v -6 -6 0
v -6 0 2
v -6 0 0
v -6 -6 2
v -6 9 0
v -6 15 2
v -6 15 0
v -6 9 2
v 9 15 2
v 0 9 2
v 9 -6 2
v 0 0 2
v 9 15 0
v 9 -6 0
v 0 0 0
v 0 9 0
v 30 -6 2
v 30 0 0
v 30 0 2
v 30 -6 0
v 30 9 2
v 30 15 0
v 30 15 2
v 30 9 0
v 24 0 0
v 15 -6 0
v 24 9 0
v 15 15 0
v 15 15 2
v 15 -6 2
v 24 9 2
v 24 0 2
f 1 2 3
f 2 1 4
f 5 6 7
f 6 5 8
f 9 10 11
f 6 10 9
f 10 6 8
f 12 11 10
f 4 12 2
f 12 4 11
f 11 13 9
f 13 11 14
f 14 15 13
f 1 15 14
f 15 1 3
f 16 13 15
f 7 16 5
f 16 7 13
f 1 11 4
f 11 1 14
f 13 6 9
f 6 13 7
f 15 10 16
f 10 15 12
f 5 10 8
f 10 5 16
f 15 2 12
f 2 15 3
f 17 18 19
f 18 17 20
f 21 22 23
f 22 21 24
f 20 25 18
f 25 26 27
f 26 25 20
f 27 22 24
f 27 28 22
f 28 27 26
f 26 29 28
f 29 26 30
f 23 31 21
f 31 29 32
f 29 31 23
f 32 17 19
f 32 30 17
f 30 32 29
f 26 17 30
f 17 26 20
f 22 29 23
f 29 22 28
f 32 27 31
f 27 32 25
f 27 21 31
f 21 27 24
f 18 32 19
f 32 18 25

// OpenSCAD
// Generated by SolidPython 1.1.3 on 2025-06-19 23:26:26
$fn = 64;


union() {
	translate(v = [0, -6, 0]) {
		difference() {
			translate(v = [-6, 0, 0]) {
				cube(size = [15.0000000000, 21, 2]);
			}
			translate(v = [0, 0, -0.1000000000]) {
				translate(v = [-6.1000000000, 6, 0]) {
					cube(size = [6.1000000000, 9, 2.2000000000]);
				}
			}
		}
	}
	translate(v = [0, 0, 2]) {
		translate(v = [24, 0, 0]) {
			rotate(a = [0, 180, 0]) {
				translate(v = [0, -6, 0]) {
					difference() {
						translate(v = [-6, 0, 0]) {
							cube(size = [15.0000000000, 21, 2]);
						}
						translate(v = [0, 0, -0.1000000000]) {
							translate(v = [-6.1000000000, 6, 0]) {
								cube(size = [6.1000000000, 9, 2.2000000000]);
							}
						}
					}
				}
			}
		}
	}
}
/***********************************************
*********      SolidPython code:      **********
************************************************
 
import numpy as np
from solid import *
from solid.utils import *
import os

folder = os.path.basename(os.path.dirname(__file__))

z = 0.1
z2 = 0.2
m = 2

t = translate
tx = lambda e, x: t([x, 0, 0])(e)
ty = lambda e, x: t([0, x, 0])(e)
tz = lambda e, x: t([0, 0, x])(e)
txy = lambda e, x, y: t([x, y, 0])(e)

r = rotate
rx = lambda e, x: r([x, 0, 0])(e)
ry = lambda e, x: r([0, x, 0])(e)
rz = lambda e, x: r([0, 0, x])(e)

sc = lambda e, x: scale([x, x, x])(e)
sx = lambda e, x: scale([x, 1, 1])(e)
sy = lambda e, x: scale([1, x, 1])(e)
sxy = lambda e, x: scale([x, x, 1])(e)
sz = lambda e, x: scale([1, 1, x])(e)

cos = np.cos
sin = np.sin
pi = np.pi
save = lambda m, n: scad_render_to_file(m, n, file_header="$fn = 64;")


# Parameters
w_fan = 140 + m  # Width of fan
h_fan = 140 + m  # Height of fan
d_fan = 24 + m  # Depth of fan
r_fan = 134 / 2  # Radius
ox_fan_hole = 7 + m  # Offset x of fan screw hole
oy_fan_hole = 7 + m  # Offset y of fan screw hole
r_fan_hole = 2.5  # Radius of fan screw hole
re_fan_hole = 13  # Extra radius of fan screw hole
d_fan_hole = 5  # Depth of fan screw hole

x_ihose = 0.15 * w_fan  # Offset x of hose input connector
y_ihose = 0.50 * h_fan  # Offset y of hose input connector
x_ohose = 0.25 * w_fan  # Offset x of hose output connector
y_ohose = 0.40 * w_fan / 2  # Offset y of hose output connector
r_hose = 13  # Radius of hose connector
m_hose = 3  # Margin of hose connector
d_hose = 30  # Depth of hose connector

h_adapter = 2  # Height of adapter
w_adapter = 120  # Width of adapter attachment
d_adapter = 3  # Depth of adapter attachment
wd_adapter = 3  # Wall depth of adapter attachment


def create_fan_box():
    d = w_fan / 2 - d_fan / 2
    fan_box = cube([w_fan, h_fan, d])
    fan = sphere(r=r_fan)
    fan = txy(fan, w_fan / 2, h_fan / 2)
    fan = tz(fan, -d_fan / 2)

    hole = cylinder(r=re_fan_hole, h=d + z2)
    hole = tz(hole, d_fan_hole)
    hole += cylinder(r=r_fan_hole, h=d + z2)
    ox, oy = ox_fan_hole, oy_fan_hole
    holes = txy(hole, ox, oy)
    holes += txy(hole, w_fan - ox, oy)
    holes += txy(hole, ox, h_fan - oy)
    holes += txy(hole, w_fan - ox, h_fan - oy)
    holes = tz(holes, -z)

    return fan_box - fan - holes


def create_fan_box_input():
    fan_box = create_fan_box()

    d = w_fan / 2 - d_fan / 2
    hose_input = cylinder(r=r_hose, h=d_hose)
    hose_input = txy(hose_input, x_ihose, y_ihose)
    hose_input = tz(hose_input, d)
    hose_input_hole = cylinder(r=r_hose - m_hose, h=d + d_hose + z2)
    hose_input_hole = txy(hose_input_hole, x_ihose, y_ihose)
    hose_input_hole = tz(hose_input_hole, -z)

    return fan_box + hose_input - hose_input_hole


def create_fan_box_output():
    fan_box = create_fan_box()

    d = w_fan / 2 - d_fan / 2
    hose_output = cylinder(r=r_hose, h=d_hose)
    hose_output = rx(hose_output, 90)
    hose_output = tx(hose_output, x_ohose)
    hose_output = tz(hose_output, y_ohose)
    hose_output_hole = cylinder(r=r_hose - m_hose, h=h_fan + d_hose + z2)
    hose_output_hole = rx(hose_output_hole, 90)
    hose_output_hole = txy(hose_output_hole, x_ohose, h_fan / 2)
    hose_output_hole = tz(hose_output_hole, y_ohose)

    return fan_box + hose_output - hose_output_hole


def create_litter_box_input_clamps():
    m = 6  # Margin

    clamp_hole = cube([m + z, m_hose + d_adapter + wd_adapter, h_adapter + z2])
    clamp_hole = txy(clamp_hole, -m - z, m)
    clamp_hole = tz(clamp_hole, -z)

    input_clamp = cube([m * 2.5, m_hose + d_adapter + wd_adapter + m * 2, h_adapter])
    input_clamp = tx(input_clamp, -m)
    input_clamp -= clamp_hole
    input_clamp = ty(input_clamp, -m_hose - wd_adapter)

    input_clamps = input_clamp + tz(tx(ry(input_clamp, 180), m * 4), h_adapter)

    return input_clamps


def create_litter_box_hose_input():
    m = 5  # Margin

    # The input hole for the air flow
    airflow_hole = cube(
        [w_adapter, d_adapter + wd_adapter + m * 3 + z2, h_adapter + z2]
    )
    airflow_hole = ty(airflow_hole, -m - z)
    airflow_hole = tz(airflow_hole, -z)

    # Shape of the rounded cat litter box
    r = 1000  # Radius of cat litter box
    indent = 2  # Indent of the cat litter box
    litter_box_shape = cylinder(r=r, h=r_hose * 2, segments=512 * r / 1000)
    litter_box_shape = txy(litter_box_shape, w_adapter / 2, r - indent)
    litter_box_shape = tz(litter_box_shape, -r_hose)

    # Hose input connector
    l_hose = w_adapter + m * 2 + d_hose
    hose_input = cylinder(r=r_hose, h=l_hose)
    hose_input += sphere(r=r_hose) - sphere(r=r_hose - m_hose)
    hose_input -= tz(cylinder(r=r_hose - m_hose, h=l_hose + z2), -z)
    hose_input = ry(hose_input, 90)
    hose_input = tz(hose_input, h_adapter / 2)
    hose_input = txy(hose_input, -m * 2, -r_hose)
    hose_input -= litter_box_shape
    hose_input -= airflow_hole
    hose_input = rx(hose_input, 90)
    hose_input = tz(hose_input, r_hose * 2)

    return hose_input


# Create the fan box input and output, and the assembly
fan_box_input = create_fan_box_input()
fan_box_output = create_fan_box_output()
assembly = rx(fan_box_input, 90) + ty(tz(rx(fan_box_output, -90), h_fan), d_fan)
save(fan_box_input, folder + ".fan-box-input.scad")
save(fan_box_output, folder + ".fan-box-output.scad")
save(assembly, folder + ".assembly.scad")

# Create the litter box hose input, and clamps for it
# The clamps are separate from the hose input because:
# 1. Removes need of supports for the hose input
# 2. Printing them flat makes them more durable
save(create_litter_box_hose_input(), folder + ".litter-box.hose-input.scad")
save(create_litter_box_input_clamps(), folder + ".litter-box.input-clamps.scad")
 
 
************************************************/
